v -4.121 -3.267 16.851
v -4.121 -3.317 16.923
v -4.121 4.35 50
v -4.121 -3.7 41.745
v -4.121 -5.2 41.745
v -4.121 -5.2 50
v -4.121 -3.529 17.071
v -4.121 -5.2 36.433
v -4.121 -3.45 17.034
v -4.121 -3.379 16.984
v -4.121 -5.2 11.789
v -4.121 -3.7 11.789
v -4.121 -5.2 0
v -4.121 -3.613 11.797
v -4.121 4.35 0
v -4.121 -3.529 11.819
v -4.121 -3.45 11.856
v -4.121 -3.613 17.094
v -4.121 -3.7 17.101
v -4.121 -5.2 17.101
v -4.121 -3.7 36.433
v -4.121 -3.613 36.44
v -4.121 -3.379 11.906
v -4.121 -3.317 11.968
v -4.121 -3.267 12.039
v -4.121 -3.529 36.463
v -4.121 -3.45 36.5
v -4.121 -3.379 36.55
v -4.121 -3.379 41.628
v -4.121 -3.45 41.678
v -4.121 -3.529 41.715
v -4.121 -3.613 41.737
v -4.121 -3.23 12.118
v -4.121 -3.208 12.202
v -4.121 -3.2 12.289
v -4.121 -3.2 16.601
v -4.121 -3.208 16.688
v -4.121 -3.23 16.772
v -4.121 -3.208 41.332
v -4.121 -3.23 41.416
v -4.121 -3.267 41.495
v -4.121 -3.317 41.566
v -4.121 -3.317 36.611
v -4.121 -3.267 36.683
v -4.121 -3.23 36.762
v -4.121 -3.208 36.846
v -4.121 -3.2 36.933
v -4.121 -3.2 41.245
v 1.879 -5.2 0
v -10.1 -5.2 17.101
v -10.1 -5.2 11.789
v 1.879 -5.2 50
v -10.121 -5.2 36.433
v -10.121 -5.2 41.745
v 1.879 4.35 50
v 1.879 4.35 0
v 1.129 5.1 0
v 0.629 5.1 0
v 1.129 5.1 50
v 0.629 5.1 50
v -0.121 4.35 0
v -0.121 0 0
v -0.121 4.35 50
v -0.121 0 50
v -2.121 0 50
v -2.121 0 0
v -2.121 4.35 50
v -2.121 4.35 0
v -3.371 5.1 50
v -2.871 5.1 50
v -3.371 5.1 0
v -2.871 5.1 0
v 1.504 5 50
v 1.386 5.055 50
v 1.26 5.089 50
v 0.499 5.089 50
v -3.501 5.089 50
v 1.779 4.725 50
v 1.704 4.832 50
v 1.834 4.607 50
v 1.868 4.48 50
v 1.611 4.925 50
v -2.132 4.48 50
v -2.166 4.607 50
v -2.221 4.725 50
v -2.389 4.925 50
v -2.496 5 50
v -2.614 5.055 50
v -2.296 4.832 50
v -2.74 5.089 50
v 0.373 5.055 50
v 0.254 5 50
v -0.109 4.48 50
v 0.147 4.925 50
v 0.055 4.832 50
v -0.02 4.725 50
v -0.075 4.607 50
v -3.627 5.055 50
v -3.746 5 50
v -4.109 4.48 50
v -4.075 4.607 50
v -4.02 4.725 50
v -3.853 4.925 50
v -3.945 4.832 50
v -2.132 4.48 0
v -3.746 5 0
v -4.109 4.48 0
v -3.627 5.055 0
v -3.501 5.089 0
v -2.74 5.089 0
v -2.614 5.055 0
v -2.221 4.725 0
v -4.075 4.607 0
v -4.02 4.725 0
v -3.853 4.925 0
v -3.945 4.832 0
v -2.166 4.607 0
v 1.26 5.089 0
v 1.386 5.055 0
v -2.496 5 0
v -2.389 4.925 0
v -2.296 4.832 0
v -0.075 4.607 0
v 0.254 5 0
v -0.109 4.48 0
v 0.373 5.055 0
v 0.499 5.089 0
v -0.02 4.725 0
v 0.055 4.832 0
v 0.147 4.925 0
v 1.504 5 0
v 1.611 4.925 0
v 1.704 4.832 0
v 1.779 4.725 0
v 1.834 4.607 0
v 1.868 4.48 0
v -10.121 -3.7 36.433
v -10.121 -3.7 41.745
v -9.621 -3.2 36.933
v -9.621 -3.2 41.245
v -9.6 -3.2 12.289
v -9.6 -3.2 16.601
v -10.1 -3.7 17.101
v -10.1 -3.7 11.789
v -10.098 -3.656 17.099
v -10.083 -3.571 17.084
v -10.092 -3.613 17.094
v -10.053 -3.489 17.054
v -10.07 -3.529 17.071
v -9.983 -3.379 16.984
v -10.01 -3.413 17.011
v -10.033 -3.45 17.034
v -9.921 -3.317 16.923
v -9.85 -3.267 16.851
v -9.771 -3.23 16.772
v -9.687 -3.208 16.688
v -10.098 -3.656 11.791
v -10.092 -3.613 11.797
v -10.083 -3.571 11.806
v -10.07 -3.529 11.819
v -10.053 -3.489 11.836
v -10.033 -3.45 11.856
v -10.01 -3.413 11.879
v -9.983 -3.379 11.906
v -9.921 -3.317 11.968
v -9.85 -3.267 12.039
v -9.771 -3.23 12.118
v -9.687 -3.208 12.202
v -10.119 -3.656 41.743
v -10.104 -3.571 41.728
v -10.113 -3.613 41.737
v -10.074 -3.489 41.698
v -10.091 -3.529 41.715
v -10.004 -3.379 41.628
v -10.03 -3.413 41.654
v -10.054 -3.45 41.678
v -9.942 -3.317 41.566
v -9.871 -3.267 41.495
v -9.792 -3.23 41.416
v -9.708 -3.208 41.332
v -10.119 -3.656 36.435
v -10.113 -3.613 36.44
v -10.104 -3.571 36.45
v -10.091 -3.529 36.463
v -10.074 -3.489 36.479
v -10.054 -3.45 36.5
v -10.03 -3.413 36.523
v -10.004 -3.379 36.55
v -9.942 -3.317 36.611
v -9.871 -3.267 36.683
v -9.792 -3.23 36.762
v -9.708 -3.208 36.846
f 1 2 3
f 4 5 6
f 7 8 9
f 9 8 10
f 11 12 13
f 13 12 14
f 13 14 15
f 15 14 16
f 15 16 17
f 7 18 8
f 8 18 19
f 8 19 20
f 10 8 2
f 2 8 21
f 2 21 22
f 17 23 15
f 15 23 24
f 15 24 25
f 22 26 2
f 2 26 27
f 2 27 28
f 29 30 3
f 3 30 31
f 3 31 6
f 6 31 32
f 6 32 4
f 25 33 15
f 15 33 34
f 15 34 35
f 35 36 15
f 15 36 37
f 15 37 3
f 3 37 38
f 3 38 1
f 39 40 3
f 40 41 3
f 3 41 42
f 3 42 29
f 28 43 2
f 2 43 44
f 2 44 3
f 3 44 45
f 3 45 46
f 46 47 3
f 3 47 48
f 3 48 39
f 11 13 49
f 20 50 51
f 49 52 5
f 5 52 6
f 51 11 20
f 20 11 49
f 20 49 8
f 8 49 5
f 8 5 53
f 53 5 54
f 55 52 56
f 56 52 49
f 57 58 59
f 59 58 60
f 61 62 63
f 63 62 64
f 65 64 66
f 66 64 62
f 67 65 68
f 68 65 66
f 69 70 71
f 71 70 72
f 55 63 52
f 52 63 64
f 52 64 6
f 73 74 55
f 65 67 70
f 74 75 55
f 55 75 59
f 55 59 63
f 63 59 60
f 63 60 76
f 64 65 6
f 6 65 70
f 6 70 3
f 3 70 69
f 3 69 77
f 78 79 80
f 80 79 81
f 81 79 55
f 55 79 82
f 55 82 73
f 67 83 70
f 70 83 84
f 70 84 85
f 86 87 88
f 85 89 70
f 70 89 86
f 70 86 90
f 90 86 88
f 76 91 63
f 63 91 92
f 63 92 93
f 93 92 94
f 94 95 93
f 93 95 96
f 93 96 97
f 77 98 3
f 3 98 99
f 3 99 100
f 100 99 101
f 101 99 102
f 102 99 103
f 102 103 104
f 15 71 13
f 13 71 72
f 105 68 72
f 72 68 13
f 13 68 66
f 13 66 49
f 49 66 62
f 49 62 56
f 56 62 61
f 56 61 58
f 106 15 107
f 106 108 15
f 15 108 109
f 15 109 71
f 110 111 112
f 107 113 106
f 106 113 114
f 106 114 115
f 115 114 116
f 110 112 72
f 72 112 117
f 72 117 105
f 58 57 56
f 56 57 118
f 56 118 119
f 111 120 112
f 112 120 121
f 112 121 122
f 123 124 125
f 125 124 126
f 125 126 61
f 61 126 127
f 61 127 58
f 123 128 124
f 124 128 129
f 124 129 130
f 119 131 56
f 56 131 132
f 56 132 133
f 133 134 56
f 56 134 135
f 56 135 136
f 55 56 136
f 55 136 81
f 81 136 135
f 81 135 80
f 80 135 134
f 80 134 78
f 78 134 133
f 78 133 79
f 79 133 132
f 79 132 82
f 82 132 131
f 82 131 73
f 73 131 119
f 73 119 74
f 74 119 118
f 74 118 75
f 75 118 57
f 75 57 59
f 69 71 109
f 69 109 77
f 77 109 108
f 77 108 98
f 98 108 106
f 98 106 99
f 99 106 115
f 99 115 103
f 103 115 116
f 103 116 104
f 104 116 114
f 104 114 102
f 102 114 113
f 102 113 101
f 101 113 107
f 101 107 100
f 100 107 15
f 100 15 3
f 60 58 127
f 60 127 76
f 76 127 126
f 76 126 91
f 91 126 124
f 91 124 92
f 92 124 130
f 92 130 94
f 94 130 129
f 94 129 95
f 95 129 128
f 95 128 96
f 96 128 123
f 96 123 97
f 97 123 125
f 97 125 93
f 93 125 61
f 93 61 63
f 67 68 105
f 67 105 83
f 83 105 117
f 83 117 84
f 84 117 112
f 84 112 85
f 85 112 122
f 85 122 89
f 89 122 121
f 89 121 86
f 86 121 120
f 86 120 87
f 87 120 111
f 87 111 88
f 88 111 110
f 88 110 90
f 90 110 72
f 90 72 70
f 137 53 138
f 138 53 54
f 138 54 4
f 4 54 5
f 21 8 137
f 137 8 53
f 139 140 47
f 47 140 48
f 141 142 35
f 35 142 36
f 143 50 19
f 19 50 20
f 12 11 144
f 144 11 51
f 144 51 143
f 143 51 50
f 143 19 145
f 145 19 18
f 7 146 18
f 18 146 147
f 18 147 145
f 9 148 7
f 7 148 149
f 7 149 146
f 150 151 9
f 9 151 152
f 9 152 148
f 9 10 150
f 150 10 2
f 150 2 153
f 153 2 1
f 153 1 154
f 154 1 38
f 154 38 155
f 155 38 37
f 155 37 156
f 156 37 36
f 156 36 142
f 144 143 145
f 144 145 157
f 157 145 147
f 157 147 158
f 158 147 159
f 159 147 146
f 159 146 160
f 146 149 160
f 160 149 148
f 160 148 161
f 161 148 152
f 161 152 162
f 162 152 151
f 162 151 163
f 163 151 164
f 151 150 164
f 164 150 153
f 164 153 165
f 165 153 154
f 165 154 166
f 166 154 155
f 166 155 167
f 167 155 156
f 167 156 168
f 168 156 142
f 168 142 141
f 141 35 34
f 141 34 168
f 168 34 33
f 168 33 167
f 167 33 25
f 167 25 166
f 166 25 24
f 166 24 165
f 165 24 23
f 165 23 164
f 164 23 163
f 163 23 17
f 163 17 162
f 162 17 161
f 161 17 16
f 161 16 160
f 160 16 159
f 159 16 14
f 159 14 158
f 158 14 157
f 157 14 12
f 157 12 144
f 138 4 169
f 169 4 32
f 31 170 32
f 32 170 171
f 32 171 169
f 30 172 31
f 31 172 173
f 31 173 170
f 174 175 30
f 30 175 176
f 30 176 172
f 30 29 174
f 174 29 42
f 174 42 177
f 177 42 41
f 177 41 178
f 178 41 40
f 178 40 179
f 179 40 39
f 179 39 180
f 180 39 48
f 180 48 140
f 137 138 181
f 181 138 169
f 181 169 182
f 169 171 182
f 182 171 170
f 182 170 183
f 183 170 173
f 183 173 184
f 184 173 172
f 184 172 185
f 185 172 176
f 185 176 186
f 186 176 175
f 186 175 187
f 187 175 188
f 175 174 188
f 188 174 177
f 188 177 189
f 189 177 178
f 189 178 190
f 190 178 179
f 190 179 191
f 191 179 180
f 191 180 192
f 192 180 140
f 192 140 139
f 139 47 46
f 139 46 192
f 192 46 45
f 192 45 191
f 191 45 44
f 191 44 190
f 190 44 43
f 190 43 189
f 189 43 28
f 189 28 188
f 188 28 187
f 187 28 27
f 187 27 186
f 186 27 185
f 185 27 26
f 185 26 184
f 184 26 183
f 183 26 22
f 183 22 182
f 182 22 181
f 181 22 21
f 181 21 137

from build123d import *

# Parameters (mm, degrees)
BOSS_EXTRU_1_DEPTH = 50
CONG_1_R           = 0.75
ESQUISSE2_W        = 6
ESQUISSE2_H        = 5.312116381
ESQUISSE2_H_2      = 5.312116382
BOSS_EXTRU_2_DEPTH = 2
CONG_2_R           = 0.5


with BuildPart() as part:
    # Esquisse1 → Boss.-Extru.1 (new body)
    with BuildSketch(Plane.XY):
        Polygon((-4.120689655, 5.1), (-2.120689655, 5.1), (-2.120689655, 0), (-0.120689655, 0), (-0.120689655, 5.1), (1.879310345, 5.1), (1.879310345, -5.2), (-4.120689655, -5.2), align=None)
    extrude(amount=BOSS_EXTRU_1_DEPTH)

    # Congé1
    cong_1_edges = [part.edges().sort_by_distance(p)[0] for p in [
        (-4.120689655, 5.1, 25),
        (-2.120689655, 5.1, 25),
        (-0.120689655, 5.1, 25),
        (1.879310345, 5.1, 25),
    ]]
    fillet(cong_1_edges, radius=CONG_1_R)

    # Esquisse2 → Boss.-Extru.2 (add)
    with BuildSketch(Plane.XZ.offset(5.2)):
        with Locations((-7.120689655, 39.088656491)):
            Rectangle(ESQUISSE2_W, ESQUISSE2_H)
        with Locations((-7.100094061, 14.445055711)):
            Rectangle(ESQUISSE2_W, ESQUISSE2_H_2)
    extrude(amount=-BOSS_EXTRU_2_DEPTH)

    # Congé2
    cong_2_edges = [part.edges().sort_by_distance(p)[0] for p in [
        (-10.120689655, -3.2, 39.088656491),
        (-7.120689655, -3.2, 41.744714681),
        (-7.120689655, -3.2, 36.4325983),
        (-7.110391858, -3.2, 17.101113902),
        (-7.110391858, -3.2, 11.78899752),
        (-10.100094061, -3.2, 14.445055711),
    ]]
    fillet(cong_2_edges, radius=CONG_2_R)


solid = part.part
